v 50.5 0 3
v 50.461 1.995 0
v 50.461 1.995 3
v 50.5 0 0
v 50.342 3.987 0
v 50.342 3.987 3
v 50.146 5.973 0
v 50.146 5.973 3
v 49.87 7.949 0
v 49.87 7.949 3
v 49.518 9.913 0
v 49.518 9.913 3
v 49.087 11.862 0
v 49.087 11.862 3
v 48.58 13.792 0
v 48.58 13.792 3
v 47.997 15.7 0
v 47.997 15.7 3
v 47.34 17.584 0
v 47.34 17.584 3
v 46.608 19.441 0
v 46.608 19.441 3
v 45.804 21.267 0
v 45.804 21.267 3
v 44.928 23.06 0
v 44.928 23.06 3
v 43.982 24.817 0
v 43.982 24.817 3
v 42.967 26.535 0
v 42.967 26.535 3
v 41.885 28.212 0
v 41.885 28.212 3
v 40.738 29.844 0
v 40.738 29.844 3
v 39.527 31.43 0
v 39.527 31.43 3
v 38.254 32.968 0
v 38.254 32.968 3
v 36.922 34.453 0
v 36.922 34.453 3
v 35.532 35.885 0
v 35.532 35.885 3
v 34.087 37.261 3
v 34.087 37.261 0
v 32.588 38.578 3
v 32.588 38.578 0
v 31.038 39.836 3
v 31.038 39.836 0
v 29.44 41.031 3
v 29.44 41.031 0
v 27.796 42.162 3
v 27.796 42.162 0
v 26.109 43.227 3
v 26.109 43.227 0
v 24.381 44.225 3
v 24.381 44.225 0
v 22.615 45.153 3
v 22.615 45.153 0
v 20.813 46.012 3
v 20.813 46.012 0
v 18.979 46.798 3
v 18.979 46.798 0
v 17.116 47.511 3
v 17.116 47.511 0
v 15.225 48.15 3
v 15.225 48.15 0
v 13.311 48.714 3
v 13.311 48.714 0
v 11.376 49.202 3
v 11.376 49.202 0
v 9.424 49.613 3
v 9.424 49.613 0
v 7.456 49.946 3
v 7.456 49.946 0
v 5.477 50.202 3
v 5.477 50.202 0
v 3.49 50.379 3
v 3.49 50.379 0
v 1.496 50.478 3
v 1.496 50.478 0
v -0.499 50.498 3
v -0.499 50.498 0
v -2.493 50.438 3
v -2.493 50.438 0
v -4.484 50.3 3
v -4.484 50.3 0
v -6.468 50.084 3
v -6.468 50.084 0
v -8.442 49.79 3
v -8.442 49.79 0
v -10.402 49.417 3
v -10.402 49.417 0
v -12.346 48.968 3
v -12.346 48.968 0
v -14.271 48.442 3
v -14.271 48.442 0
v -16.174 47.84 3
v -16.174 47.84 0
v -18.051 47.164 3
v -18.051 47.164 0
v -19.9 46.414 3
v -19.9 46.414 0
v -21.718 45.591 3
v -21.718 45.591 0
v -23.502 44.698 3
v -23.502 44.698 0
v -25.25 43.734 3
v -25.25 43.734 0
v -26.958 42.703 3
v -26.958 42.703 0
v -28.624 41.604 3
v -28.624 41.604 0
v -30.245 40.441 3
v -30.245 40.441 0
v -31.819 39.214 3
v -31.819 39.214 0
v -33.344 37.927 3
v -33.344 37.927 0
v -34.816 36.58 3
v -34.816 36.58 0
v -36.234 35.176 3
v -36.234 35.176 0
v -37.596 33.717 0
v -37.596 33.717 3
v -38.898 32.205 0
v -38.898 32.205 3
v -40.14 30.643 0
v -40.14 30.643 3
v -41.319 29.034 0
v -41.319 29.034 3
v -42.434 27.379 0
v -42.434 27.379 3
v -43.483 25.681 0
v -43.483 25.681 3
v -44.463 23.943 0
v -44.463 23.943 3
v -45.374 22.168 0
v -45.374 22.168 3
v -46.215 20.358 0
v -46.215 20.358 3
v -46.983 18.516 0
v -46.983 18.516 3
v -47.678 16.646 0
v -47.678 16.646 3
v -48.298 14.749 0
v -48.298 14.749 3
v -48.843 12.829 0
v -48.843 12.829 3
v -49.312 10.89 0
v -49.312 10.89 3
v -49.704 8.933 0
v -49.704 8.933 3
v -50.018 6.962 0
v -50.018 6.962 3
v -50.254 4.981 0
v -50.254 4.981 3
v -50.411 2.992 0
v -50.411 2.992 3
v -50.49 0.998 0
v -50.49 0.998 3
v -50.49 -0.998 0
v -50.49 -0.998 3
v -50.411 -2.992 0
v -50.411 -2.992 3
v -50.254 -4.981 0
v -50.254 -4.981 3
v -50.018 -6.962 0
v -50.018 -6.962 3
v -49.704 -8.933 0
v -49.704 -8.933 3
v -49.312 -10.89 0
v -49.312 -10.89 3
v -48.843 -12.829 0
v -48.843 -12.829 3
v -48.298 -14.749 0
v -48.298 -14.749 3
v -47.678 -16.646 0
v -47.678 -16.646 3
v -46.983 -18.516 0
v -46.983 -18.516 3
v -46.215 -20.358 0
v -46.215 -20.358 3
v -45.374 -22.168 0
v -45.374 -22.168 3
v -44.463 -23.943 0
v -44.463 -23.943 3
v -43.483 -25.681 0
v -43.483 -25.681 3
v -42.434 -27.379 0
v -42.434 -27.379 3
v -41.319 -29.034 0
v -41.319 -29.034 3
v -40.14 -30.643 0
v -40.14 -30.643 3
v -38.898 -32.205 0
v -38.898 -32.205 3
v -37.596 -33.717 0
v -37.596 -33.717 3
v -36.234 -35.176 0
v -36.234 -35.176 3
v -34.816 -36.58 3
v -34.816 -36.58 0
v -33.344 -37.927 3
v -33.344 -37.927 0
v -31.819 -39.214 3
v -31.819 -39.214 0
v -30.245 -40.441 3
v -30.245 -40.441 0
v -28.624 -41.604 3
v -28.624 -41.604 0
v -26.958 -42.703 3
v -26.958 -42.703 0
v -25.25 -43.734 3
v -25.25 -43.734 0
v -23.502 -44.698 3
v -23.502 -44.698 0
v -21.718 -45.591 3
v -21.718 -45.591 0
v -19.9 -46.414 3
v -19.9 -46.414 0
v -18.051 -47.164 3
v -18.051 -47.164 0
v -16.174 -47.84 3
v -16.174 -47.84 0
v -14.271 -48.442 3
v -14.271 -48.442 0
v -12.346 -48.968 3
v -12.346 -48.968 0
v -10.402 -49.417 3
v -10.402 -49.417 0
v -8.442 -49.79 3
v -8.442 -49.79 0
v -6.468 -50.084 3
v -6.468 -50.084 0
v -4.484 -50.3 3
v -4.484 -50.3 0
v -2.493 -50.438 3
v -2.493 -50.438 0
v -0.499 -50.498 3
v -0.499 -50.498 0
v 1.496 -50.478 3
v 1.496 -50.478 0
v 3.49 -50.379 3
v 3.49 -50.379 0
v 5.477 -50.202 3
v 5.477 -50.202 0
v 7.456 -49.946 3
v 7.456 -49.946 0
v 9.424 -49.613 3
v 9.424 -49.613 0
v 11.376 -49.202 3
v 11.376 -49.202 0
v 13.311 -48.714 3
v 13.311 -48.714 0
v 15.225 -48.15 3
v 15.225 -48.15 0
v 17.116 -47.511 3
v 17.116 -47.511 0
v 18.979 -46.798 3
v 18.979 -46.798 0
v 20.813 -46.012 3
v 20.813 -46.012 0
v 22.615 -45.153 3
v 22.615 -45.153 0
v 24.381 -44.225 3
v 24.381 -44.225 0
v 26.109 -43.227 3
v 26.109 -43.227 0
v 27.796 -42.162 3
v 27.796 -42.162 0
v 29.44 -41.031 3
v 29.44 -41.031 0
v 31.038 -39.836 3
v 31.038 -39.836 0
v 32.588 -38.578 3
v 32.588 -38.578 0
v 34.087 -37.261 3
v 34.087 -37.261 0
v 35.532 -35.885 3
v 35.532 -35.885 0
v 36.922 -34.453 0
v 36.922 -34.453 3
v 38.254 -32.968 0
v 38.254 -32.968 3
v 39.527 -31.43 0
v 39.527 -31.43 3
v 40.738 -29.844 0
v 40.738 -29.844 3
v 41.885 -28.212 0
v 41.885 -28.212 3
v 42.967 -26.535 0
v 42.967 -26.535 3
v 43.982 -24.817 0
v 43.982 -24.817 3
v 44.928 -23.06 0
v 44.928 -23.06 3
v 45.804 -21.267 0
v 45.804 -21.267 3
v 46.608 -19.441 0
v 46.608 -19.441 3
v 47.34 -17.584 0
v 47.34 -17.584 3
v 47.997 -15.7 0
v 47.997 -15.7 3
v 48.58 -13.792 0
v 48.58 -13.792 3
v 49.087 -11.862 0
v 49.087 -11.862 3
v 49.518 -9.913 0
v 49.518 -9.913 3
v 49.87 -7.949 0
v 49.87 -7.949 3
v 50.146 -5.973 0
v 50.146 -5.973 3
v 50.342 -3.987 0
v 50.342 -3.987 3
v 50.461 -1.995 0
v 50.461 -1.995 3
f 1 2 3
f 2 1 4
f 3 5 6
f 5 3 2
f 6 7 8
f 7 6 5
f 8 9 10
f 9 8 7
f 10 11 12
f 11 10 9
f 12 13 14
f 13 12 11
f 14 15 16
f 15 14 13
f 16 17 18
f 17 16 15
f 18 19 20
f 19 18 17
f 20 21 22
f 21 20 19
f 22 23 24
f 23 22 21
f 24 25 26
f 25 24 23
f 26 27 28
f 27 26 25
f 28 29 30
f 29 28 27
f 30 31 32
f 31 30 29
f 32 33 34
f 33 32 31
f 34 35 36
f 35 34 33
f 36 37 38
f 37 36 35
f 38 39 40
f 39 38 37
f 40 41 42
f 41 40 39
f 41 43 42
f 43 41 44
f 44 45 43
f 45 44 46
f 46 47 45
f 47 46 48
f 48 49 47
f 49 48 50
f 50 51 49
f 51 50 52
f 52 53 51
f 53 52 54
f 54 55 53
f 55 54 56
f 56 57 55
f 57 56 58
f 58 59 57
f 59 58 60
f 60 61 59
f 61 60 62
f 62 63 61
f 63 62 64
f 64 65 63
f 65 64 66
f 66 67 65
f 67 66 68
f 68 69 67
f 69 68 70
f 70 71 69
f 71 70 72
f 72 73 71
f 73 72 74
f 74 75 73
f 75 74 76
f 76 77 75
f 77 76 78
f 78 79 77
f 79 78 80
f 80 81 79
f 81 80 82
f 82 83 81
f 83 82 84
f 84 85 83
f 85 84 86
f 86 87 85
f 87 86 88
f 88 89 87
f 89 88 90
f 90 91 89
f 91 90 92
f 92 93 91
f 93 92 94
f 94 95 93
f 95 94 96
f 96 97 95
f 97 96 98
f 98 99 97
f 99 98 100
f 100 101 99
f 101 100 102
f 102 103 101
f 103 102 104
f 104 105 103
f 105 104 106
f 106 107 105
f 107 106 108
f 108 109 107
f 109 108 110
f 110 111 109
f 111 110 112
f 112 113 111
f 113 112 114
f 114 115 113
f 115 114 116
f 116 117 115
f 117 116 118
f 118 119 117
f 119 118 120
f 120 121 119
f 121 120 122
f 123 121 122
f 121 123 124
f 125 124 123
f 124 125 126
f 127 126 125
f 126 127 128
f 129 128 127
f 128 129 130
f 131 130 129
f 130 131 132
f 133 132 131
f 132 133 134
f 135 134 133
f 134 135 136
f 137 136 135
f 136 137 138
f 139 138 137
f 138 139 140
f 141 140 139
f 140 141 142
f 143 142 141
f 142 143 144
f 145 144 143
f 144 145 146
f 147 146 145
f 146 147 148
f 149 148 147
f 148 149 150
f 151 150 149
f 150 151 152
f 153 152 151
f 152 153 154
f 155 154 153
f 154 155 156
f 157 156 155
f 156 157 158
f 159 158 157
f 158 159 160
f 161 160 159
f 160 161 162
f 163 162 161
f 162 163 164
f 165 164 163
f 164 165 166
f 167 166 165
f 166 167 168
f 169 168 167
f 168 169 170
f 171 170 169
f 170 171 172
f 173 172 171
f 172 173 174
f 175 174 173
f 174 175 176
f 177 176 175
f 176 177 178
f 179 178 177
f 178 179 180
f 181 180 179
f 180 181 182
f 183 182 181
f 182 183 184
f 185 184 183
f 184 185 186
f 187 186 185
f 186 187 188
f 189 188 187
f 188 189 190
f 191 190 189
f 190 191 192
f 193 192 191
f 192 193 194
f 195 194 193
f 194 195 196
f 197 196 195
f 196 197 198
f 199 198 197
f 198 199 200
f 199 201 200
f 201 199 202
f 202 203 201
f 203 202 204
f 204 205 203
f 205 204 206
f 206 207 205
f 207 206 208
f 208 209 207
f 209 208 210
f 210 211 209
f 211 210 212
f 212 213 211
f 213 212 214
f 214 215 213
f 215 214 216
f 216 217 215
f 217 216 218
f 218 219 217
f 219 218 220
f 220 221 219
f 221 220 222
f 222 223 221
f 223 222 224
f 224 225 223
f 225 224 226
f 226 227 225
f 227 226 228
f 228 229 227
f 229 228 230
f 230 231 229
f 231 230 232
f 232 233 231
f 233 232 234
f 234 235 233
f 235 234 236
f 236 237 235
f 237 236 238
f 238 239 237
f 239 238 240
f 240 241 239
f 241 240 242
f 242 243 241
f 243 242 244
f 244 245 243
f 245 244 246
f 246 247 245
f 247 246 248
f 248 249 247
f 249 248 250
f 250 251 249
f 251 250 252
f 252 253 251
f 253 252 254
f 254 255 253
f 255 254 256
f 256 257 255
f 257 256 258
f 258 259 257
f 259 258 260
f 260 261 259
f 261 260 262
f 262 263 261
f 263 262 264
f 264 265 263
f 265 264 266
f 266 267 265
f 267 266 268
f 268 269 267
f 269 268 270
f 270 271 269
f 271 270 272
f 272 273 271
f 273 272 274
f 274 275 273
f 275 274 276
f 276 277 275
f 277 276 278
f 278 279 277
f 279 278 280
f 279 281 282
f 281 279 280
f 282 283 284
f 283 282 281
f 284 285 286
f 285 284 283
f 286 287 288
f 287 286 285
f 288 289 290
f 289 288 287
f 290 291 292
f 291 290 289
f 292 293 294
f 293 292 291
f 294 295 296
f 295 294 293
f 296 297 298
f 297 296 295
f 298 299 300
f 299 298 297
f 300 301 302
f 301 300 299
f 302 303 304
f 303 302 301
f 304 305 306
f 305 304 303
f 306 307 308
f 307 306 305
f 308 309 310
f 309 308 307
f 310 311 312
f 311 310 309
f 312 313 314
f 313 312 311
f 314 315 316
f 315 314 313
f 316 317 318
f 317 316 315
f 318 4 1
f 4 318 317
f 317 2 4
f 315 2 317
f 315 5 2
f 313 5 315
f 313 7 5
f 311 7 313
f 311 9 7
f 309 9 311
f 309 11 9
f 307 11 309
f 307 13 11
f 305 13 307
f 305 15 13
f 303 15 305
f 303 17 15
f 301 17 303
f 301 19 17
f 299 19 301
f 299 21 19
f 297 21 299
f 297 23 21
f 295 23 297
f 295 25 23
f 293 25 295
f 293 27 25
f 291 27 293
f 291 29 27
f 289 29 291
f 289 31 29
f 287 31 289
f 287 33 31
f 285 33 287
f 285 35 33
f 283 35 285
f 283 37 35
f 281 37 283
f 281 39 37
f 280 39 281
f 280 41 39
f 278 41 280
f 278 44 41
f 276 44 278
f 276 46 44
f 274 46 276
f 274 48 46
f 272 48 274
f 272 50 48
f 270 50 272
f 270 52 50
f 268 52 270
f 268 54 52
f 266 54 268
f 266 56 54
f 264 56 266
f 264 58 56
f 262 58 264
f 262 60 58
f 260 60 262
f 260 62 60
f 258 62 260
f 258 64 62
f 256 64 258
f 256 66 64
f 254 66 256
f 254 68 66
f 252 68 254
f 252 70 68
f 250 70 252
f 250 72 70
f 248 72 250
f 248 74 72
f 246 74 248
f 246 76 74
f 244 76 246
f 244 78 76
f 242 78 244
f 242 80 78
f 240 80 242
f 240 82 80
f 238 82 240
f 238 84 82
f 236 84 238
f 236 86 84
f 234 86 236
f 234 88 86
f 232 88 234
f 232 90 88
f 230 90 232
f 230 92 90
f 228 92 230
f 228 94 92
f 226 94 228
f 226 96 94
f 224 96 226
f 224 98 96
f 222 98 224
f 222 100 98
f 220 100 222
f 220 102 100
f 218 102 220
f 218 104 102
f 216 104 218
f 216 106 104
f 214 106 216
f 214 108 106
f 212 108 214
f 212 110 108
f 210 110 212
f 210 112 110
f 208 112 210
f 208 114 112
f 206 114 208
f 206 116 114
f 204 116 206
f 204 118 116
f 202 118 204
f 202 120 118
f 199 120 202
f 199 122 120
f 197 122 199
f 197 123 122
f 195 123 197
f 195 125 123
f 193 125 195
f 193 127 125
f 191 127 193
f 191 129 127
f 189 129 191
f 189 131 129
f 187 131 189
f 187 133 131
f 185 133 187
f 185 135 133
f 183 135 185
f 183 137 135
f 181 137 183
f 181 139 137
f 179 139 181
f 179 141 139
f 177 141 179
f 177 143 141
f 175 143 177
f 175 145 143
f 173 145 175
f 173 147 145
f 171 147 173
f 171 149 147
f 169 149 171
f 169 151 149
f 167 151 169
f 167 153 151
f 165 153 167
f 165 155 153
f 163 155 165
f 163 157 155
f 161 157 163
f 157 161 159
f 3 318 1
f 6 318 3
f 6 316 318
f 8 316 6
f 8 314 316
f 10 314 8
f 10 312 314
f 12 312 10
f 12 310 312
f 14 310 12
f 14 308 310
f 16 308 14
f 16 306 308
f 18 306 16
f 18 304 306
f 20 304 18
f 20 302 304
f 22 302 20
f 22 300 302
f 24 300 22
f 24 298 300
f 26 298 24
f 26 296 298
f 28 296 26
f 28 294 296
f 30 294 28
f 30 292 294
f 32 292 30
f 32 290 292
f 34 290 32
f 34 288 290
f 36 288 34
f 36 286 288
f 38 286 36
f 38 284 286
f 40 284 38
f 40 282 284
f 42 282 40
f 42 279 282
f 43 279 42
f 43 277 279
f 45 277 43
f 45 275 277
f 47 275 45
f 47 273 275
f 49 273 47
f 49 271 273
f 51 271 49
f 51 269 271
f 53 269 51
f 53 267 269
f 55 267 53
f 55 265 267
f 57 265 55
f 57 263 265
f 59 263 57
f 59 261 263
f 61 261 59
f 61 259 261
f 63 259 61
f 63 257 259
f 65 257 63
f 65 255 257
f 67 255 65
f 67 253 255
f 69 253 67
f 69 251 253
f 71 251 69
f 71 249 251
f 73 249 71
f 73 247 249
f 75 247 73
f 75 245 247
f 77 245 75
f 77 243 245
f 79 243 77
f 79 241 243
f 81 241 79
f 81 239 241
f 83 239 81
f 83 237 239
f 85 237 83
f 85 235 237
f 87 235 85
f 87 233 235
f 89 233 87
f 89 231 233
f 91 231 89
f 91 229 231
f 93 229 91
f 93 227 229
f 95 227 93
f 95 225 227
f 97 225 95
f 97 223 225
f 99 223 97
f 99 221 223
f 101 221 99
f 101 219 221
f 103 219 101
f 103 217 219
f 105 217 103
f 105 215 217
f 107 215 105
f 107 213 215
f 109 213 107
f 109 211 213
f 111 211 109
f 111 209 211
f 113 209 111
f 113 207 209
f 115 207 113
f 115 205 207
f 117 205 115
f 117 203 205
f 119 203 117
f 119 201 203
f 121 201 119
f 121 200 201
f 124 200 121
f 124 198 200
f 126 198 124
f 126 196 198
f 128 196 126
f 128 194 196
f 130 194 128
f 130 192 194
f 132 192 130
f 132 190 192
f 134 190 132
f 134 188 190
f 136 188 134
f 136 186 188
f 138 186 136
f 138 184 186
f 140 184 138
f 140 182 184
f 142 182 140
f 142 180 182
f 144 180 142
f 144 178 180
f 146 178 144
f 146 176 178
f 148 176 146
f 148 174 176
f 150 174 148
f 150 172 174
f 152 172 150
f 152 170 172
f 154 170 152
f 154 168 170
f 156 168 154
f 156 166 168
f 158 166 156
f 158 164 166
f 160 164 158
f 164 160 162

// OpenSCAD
doser_width = 101;

/*
https://en.wikibooks.org/wiki/OpenSCAD_User_Manual/Other_Language_Features#$fa,_$fs_and_$fn
*/
$fa=1;
cylinder(d=doser_width, h=3);
